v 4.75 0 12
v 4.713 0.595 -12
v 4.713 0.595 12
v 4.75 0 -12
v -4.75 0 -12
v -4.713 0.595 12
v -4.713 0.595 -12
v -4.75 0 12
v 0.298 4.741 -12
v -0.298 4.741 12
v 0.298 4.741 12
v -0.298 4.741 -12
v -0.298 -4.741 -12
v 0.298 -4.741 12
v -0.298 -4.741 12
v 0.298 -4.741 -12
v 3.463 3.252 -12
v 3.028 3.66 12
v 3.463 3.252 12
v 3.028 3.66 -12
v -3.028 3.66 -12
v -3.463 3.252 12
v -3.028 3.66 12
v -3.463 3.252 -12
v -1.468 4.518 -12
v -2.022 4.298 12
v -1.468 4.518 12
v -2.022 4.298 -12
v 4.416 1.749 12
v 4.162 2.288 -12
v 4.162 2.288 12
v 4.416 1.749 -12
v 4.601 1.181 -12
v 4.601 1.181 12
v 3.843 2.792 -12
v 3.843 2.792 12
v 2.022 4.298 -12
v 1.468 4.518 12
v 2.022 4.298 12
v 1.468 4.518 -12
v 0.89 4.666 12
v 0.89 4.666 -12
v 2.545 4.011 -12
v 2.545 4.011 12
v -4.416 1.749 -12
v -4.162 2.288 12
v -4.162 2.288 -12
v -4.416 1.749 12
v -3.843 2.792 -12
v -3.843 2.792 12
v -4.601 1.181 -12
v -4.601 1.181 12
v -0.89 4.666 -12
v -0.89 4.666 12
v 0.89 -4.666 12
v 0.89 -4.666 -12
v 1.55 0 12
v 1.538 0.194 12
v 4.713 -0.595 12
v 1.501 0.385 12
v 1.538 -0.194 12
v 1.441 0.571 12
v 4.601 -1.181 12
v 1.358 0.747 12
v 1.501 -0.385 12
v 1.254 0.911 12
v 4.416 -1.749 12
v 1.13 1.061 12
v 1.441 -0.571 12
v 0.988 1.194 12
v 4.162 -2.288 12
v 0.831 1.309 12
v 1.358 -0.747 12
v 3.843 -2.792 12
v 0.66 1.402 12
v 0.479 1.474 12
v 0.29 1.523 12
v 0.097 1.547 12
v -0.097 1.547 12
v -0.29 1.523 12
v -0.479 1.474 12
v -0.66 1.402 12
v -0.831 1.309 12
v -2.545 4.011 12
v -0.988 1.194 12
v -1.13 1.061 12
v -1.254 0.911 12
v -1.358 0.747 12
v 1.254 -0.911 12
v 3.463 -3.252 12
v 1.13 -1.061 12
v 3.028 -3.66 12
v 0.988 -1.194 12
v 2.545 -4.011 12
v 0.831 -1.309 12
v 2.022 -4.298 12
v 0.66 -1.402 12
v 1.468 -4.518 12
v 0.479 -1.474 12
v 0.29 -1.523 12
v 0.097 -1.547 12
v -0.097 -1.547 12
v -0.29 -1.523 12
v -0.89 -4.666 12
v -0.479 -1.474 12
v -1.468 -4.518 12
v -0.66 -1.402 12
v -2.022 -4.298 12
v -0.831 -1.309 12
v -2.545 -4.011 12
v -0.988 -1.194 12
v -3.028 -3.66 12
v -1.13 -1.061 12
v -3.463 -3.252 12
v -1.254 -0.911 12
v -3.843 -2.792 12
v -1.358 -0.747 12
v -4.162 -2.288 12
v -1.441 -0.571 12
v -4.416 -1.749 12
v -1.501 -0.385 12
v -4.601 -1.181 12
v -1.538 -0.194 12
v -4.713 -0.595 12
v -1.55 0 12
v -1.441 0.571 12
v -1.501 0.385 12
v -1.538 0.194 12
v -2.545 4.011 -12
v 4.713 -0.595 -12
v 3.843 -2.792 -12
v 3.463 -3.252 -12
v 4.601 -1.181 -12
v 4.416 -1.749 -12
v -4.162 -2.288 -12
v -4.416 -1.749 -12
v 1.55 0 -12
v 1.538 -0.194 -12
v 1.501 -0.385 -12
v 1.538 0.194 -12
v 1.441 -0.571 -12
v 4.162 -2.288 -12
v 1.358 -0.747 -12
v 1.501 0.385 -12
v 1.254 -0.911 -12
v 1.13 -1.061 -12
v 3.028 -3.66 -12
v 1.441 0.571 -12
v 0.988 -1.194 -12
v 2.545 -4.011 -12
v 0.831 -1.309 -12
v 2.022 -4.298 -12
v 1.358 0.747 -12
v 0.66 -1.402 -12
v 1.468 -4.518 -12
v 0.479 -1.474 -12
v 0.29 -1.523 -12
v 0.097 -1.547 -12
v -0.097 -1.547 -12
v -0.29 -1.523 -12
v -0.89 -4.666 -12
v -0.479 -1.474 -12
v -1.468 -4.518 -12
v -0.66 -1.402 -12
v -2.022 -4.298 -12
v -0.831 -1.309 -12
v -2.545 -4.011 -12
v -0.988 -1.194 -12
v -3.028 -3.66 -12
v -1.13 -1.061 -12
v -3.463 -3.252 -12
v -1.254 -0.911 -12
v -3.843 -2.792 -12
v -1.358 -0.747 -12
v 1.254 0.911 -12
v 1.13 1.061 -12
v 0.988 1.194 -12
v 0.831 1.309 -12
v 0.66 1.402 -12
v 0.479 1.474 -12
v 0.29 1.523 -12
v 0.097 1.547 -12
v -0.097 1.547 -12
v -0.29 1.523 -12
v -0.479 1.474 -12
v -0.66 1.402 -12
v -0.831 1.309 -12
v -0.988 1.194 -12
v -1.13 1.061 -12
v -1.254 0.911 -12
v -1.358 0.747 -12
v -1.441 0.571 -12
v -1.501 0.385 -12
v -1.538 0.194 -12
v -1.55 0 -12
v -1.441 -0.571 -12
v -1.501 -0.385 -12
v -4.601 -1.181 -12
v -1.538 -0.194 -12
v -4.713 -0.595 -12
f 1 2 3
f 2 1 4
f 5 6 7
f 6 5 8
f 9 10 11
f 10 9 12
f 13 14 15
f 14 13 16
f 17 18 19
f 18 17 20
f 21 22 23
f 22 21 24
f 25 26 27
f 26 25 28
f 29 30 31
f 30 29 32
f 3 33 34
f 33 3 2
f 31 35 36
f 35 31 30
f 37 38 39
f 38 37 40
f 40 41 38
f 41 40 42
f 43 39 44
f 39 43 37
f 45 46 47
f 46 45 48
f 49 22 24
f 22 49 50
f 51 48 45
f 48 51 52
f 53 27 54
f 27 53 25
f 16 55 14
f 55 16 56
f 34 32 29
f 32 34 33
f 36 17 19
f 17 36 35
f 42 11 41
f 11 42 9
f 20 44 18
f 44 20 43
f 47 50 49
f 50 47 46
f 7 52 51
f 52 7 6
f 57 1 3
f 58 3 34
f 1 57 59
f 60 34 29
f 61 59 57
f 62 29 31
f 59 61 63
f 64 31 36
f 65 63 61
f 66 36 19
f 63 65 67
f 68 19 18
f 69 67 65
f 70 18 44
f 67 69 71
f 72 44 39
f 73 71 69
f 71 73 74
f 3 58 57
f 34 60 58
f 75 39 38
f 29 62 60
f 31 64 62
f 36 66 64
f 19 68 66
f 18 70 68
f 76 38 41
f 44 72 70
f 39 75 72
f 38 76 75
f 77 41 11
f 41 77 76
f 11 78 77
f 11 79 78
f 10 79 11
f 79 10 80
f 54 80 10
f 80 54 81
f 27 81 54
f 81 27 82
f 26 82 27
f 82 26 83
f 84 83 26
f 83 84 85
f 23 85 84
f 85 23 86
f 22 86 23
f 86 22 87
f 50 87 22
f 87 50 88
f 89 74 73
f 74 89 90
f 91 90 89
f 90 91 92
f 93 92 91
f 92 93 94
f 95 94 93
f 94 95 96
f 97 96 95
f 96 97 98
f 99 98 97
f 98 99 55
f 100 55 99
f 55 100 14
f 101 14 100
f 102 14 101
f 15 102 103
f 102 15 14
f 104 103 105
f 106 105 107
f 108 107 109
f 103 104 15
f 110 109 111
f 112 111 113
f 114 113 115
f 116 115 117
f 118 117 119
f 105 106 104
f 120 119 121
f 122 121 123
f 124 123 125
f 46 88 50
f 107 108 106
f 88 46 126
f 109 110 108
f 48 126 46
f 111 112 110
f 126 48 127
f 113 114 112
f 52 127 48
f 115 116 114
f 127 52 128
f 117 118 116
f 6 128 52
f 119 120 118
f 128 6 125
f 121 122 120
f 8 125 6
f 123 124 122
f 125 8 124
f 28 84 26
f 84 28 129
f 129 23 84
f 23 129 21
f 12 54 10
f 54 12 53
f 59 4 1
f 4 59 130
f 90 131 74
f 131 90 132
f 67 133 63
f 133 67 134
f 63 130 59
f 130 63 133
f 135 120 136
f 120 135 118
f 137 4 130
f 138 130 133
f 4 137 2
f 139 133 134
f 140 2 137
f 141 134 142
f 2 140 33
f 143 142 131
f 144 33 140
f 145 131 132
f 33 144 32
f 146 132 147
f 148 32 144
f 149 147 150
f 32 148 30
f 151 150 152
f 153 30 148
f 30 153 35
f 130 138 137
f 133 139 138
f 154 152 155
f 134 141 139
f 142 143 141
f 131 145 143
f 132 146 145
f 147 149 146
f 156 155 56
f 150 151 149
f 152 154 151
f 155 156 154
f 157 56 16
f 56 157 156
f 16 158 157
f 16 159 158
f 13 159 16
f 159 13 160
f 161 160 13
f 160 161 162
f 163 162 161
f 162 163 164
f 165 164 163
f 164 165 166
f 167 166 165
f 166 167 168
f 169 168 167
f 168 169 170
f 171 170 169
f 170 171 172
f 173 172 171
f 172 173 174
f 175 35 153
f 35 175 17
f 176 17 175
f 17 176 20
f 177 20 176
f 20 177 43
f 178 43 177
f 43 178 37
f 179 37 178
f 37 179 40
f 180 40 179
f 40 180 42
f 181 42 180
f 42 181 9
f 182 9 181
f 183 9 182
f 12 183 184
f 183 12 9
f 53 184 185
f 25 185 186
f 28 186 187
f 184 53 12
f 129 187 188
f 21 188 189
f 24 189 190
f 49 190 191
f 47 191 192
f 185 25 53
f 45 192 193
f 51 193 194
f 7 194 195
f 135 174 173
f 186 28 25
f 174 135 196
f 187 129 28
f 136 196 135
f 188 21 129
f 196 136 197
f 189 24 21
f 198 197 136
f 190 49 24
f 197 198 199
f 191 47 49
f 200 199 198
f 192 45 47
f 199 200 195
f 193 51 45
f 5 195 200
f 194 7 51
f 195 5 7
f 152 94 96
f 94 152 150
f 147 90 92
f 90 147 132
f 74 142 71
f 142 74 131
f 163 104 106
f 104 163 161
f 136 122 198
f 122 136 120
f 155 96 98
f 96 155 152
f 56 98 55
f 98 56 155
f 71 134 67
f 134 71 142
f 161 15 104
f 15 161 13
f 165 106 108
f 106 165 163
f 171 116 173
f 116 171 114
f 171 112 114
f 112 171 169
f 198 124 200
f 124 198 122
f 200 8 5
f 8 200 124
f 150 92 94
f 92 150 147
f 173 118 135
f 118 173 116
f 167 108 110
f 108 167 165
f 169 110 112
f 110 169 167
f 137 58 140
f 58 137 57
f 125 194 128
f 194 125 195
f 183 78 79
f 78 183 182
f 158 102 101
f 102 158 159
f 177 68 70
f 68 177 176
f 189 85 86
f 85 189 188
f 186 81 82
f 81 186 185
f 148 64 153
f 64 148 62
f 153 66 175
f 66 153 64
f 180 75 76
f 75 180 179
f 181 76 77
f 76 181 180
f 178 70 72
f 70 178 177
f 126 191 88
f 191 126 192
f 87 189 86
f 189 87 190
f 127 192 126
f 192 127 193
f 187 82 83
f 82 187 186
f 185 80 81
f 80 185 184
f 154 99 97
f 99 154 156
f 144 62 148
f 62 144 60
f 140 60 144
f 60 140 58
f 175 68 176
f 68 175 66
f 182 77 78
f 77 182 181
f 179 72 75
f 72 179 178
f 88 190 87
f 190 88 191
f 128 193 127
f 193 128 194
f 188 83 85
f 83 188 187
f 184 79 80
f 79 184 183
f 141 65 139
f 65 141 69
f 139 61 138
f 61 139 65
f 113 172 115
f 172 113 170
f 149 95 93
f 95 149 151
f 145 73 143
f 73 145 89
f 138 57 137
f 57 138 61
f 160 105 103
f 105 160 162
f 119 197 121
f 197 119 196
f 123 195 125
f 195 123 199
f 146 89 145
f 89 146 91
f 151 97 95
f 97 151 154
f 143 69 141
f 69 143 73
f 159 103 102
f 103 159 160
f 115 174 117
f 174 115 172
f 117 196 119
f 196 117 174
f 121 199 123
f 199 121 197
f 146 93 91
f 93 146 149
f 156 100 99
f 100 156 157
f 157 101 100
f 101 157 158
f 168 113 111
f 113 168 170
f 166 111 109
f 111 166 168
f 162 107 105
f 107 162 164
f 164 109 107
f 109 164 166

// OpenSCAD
$fn = 50;


difference() {
	union() {
		translate(v = [0, 0, -12.0000000000]) {
			cylinder(h = 24, r = 4.7500000000);
		}
	}
	union() {
		translate(v = [0, 0, -100.0000000000]) {
			cylinder(h = 200, r = 1.5500000000);
		}
	}
}
